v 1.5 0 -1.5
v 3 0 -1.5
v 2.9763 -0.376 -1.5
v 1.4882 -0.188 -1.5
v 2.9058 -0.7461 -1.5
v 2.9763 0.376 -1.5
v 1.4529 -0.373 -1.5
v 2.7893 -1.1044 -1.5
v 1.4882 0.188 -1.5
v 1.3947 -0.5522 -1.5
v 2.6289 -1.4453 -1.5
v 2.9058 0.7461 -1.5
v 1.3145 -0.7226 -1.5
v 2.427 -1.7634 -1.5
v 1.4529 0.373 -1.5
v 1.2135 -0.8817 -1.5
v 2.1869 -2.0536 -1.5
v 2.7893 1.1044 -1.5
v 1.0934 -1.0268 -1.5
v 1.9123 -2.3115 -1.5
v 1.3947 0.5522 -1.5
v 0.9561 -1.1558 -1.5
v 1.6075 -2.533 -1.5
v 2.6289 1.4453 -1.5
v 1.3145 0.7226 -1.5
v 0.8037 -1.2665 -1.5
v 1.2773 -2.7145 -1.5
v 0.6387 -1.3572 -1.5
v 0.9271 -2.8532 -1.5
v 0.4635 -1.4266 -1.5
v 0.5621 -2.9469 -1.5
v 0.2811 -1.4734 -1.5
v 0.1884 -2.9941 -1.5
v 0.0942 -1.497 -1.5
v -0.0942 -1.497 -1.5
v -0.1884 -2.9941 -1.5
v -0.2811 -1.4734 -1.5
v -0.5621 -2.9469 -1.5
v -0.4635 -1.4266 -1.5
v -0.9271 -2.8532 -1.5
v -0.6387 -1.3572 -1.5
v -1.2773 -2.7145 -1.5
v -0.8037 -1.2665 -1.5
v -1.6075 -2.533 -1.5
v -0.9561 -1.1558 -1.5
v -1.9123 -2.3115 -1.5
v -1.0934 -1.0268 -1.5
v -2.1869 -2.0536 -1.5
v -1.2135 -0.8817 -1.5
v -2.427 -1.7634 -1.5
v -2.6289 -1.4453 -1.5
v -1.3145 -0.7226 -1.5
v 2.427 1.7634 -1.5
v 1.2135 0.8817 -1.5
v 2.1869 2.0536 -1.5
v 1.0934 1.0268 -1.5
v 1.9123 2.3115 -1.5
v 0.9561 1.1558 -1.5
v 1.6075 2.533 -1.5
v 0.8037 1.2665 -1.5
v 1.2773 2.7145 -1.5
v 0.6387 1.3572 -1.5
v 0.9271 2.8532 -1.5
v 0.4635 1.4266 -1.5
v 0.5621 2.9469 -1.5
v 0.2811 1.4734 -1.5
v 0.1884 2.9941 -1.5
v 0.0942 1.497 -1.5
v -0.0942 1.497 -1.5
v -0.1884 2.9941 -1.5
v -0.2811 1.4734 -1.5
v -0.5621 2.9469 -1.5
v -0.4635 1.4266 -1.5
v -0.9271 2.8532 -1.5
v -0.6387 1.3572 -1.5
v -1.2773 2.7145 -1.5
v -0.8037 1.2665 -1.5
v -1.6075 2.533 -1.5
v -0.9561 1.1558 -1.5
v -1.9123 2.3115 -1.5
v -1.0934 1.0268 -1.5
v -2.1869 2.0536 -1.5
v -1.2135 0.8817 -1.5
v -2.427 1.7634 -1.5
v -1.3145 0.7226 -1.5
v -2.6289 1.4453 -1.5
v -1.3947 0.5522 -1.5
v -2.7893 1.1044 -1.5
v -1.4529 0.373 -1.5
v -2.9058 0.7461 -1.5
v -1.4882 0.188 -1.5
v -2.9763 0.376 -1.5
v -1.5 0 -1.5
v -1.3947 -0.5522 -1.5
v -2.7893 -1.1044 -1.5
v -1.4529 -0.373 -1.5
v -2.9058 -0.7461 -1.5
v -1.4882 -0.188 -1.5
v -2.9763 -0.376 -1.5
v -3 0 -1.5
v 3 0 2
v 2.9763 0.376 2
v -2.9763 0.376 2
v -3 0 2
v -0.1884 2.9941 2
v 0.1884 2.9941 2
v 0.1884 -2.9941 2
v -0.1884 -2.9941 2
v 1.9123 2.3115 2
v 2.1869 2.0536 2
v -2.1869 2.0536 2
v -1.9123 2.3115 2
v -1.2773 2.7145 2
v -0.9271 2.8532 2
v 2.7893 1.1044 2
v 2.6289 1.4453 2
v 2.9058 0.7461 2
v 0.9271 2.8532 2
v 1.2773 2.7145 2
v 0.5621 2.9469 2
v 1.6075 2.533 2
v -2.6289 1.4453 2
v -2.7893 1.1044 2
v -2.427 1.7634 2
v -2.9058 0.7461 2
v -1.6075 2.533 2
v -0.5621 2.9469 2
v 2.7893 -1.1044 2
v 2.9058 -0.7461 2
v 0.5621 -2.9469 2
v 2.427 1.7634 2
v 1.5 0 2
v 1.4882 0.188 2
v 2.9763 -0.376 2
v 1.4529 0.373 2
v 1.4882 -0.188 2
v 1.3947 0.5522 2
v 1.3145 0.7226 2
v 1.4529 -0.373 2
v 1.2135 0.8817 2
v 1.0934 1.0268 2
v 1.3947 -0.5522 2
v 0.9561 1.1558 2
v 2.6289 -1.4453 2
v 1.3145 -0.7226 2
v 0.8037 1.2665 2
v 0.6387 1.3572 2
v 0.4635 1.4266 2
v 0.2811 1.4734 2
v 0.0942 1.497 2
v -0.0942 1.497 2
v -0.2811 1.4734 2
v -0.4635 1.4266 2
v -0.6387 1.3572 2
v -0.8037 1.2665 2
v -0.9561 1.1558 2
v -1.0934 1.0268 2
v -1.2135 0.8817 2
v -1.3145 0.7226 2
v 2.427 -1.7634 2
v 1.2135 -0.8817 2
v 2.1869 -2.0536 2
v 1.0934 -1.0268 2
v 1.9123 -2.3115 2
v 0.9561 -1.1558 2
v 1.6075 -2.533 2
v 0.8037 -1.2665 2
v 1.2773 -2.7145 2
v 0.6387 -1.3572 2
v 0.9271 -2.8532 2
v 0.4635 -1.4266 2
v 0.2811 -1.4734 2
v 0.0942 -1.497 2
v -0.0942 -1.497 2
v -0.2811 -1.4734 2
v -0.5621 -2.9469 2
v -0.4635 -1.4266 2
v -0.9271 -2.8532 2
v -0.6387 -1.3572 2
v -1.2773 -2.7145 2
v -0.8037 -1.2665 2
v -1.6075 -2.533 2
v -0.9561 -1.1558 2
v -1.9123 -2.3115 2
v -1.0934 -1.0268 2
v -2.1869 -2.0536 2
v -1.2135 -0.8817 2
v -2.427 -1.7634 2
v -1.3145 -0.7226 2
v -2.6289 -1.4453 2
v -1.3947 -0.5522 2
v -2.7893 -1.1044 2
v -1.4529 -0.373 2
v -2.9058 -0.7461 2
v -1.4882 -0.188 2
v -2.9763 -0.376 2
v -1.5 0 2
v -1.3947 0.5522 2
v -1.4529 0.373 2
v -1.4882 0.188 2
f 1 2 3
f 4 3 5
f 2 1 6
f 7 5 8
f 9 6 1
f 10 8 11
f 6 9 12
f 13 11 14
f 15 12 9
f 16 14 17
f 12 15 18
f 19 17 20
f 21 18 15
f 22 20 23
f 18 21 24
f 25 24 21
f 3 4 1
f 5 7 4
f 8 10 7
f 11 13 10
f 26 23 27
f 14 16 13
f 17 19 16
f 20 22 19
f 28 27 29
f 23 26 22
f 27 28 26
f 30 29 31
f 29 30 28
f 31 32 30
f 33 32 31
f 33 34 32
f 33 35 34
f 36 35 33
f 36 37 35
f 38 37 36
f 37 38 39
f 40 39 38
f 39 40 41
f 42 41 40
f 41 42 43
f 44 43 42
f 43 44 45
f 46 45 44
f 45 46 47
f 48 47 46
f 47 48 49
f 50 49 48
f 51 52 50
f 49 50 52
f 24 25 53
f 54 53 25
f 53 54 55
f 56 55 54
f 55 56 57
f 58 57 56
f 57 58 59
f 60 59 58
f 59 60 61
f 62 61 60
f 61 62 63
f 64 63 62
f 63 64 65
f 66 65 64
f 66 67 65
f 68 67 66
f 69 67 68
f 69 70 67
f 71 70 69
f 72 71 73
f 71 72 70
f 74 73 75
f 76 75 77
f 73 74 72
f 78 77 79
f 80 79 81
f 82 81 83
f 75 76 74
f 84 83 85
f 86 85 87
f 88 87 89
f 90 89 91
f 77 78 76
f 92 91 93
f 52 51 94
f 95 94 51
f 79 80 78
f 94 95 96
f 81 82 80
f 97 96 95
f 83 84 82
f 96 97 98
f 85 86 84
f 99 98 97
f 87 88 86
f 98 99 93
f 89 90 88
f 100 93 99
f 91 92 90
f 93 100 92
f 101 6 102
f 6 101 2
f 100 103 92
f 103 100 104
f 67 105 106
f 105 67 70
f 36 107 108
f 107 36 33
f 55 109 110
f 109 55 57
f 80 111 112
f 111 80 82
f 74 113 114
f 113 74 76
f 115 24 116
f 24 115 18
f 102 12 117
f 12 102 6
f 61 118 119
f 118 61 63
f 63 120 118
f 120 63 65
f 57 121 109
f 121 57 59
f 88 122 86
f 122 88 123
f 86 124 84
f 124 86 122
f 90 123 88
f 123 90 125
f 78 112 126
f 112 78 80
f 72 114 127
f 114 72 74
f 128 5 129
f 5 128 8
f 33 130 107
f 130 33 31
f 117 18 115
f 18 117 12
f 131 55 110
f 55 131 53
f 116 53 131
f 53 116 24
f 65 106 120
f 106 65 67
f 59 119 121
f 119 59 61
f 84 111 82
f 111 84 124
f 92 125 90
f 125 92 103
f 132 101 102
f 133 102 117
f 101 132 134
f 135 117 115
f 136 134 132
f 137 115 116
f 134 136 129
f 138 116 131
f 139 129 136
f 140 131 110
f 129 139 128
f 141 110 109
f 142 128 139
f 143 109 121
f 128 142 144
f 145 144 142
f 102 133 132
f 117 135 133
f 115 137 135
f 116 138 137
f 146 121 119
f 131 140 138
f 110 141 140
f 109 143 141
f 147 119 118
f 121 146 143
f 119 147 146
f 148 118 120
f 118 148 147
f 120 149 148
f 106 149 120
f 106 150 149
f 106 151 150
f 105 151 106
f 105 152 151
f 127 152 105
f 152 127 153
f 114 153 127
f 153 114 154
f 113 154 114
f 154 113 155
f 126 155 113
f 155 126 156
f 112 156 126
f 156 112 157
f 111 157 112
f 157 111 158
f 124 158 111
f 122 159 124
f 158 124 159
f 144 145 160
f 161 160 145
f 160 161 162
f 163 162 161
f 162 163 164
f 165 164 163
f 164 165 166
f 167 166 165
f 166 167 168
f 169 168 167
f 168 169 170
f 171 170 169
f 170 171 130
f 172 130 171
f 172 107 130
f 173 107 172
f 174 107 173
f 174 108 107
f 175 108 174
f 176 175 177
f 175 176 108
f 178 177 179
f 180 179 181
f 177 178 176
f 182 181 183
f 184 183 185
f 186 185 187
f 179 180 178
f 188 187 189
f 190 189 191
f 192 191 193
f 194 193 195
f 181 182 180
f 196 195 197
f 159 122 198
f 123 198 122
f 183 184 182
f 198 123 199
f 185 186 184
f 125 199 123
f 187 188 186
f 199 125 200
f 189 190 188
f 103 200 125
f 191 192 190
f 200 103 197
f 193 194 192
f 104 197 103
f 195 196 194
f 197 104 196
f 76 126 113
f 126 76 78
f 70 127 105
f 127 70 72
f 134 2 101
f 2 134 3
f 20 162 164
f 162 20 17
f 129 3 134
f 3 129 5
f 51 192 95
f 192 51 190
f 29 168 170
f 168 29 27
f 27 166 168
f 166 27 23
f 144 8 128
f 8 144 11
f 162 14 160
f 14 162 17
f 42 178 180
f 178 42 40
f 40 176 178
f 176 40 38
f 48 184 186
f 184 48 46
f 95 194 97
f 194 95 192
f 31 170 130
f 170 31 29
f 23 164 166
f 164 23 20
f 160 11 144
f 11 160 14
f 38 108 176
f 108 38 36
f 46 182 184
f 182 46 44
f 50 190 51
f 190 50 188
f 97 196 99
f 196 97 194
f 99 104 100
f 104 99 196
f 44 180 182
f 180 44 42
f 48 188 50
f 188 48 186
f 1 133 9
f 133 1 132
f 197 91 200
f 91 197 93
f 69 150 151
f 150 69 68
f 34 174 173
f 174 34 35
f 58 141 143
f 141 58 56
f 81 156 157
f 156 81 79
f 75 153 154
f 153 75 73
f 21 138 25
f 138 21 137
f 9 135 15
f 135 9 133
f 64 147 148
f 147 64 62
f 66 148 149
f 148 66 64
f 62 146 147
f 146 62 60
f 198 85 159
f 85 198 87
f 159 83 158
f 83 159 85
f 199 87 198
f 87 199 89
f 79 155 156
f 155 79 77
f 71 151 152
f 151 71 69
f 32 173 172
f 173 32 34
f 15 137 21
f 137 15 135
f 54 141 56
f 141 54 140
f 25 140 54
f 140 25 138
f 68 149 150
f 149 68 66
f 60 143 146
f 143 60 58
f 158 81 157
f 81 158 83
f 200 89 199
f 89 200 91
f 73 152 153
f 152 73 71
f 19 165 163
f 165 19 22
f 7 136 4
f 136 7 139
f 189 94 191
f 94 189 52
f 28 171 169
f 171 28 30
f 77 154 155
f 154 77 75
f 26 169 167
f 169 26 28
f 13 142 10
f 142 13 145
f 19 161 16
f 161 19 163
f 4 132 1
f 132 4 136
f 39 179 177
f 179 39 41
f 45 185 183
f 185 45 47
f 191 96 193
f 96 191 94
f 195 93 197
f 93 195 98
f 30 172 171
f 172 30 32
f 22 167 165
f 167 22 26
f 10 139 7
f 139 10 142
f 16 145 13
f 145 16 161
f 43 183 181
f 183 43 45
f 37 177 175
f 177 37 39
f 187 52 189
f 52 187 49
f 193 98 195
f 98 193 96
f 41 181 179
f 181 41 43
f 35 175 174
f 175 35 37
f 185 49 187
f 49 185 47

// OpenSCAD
$fn = 50;


difference() {
	union() {
		translate(v = [0, 0, -1.5000000000]) {
			rotate(a = [0, 0, 0]) {
				cylinder(h = 3, r = 1.0000000000);
			}
		}
		translate(v = [0, 0, -1.5000000000]) {
			rotate(a = [0, 0, 0]) {
				cylinder(h = 3.5000000000, r = 3.0000000000);
			}
		}
	}
	union() {
		translate(v = [0, 0, -125.0000000000]) {
			rotate(a = [0, 0, 0]) {
				cylinder(h = 250, r = 1.5000000000);
			}
		}
	}
}
